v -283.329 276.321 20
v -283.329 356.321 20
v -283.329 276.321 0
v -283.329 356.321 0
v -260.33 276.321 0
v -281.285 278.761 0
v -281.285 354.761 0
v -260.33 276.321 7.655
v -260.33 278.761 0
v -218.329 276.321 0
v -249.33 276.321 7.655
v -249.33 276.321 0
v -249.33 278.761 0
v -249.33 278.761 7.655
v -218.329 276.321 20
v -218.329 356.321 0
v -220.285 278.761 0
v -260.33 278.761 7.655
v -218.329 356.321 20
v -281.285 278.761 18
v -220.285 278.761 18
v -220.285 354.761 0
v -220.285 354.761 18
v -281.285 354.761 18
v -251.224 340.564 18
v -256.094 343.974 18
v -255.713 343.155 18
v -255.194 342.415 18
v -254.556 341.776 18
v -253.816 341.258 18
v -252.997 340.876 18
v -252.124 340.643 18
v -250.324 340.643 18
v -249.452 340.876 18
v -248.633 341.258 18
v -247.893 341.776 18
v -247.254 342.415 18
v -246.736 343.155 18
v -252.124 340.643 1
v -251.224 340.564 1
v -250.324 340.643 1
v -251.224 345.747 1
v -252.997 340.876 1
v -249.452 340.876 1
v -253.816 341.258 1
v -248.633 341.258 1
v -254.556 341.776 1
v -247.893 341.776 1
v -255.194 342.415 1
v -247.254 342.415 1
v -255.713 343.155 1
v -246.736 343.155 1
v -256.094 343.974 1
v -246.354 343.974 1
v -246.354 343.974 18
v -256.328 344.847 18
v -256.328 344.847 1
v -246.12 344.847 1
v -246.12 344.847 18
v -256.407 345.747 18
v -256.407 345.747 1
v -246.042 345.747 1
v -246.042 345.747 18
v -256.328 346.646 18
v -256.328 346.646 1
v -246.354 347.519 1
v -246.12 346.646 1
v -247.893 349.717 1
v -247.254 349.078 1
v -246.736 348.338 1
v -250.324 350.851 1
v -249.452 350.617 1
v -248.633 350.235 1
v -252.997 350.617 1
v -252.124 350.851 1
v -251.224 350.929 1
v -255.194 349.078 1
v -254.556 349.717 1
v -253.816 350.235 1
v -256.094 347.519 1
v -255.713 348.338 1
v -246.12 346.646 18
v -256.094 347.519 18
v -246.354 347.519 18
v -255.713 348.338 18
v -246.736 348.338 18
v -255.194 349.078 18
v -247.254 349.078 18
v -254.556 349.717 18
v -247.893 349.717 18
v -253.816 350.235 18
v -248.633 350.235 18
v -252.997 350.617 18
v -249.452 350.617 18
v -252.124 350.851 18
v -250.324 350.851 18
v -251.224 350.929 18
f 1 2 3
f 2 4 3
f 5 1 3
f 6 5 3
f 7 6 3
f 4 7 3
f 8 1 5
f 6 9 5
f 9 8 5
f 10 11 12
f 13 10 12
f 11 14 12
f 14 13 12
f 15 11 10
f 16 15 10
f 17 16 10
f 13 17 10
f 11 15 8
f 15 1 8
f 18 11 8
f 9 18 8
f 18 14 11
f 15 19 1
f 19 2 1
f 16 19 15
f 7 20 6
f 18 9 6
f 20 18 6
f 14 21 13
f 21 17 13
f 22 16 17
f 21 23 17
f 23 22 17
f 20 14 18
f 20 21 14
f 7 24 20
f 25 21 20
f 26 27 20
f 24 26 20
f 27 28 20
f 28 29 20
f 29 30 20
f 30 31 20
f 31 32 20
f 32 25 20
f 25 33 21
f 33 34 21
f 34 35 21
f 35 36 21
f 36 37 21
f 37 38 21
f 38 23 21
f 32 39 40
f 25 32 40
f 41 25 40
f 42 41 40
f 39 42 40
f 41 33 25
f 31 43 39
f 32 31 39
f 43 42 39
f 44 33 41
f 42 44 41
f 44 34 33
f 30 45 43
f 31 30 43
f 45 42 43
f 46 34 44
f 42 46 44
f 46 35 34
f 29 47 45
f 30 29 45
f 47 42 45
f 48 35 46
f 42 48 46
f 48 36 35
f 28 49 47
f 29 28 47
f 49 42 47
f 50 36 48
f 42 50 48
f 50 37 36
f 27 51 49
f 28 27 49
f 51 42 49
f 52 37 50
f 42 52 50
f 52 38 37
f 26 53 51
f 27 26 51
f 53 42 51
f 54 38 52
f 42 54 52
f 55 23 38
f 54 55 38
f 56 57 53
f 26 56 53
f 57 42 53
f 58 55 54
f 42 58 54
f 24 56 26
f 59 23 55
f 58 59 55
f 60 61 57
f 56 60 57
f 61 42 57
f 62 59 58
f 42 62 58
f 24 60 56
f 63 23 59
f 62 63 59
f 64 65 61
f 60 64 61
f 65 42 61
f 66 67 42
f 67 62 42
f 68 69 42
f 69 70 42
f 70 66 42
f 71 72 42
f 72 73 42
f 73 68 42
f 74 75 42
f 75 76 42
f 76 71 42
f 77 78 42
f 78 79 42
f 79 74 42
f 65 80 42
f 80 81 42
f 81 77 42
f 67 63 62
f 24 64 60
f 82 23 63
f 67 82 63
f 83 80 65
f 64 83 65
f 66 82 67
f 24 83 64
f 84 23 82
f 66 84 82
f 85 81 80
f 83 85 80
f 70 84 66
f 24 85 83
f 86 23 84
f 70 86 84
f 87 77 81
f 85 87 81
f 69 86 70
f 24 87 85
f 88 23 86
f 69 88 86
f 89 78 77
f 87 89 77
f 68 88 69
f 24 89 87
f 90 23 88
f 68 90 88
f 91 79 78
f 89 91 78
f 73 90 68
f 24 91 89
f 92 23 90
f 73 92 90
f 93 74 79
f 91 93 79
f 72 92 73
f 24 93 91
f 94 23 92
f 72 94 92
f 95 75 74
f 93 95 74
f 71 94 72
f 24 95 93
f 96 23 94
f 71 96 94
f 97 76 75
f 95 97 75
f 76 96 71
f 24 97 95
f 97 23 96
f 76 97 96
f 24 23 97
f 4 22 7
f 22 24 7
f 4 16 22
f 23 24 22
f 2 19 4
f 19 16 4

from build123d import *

# Parameters (mm, degrees)
SCHIZZO1_W                   = 65
SCHIZZO1_H                   = 80
ESTRUSIONE_ESTRUSIONE3_DEPTH = 20
SCHIZZO4_W                   = 61
SCHIZZO4_H                   = 76
TAGLIO_ESTRUSIONE5_DEPTH     = 18
SCHIZZO6_W                   = 11
SCHIZZO6_H                   = 8.5
TAGLIO_ESTRUSIONE8_DEPTH     = 3
SCHIZZO7_R                   = 5.182753919
ESTRUSIONE_ESTRUSIONE6_DEPTH = 17


with BuildPart() as part:
    # Schizzo1 → Estrusione-Estrusione3 (new body)
    with BuildSketch(Plane.XY):
        with Locations((-250.828848217, 316.320789782)):
            Rectangle(SCHIZZO1_W, SCHIZZO1_H)
    extrude(amount=ESTRUSIONE_ESTRUSIONE3_DEPTH)

    # Schizzo4 → Taglio-Estrusione5 (cut)
    with BuildSketch(Plane(origin=(0, 0, 0), x_dir=(-1, 0, 0), z_dir=(0, 0, -1))):
        with Locations((250.785132486, 316.761133349)):
            Rectangle(SCHIZZO4_W, SCHIZZO4_H)
    extrude(amount=-TAGLIO_ESTRUSIONE5_DEPTH, mode=Mode.SUBTRACT)

    # Schizzo6 → Taglio-Estrusione8 (cut)
    with BuildSketch(Plane(origin=(0, 276.320789782, 0), x_dir=(-1, 0, 0), z_dir=(0, -1, 0))):
        with Locations((254.830379364, -3.404987236)):
            Rectangle(SCHIZZO6_W, SCHIZZO6_H)
    extrude(amount=-TAGLIO_ESTRUSIONE8_DEPTH, mode=Mode.SUBTRACT)

    # Schizzo7 → Estrusione-Estrusione6 (add)
    with BuildSketch(Plane(origin=(0, 0, 18), x_dir=(-1, 0, 0), z_dir=(0, 0, -1))):
        with Locations(Location((251.224275907, 345.746509499, 0), (0, 0, 180))):
            Circle(SCHIZZO7_R)
    extrude(amount=ESTRUSIONE_ESTRUSIONE6_DEPTH)


solid = part.part
